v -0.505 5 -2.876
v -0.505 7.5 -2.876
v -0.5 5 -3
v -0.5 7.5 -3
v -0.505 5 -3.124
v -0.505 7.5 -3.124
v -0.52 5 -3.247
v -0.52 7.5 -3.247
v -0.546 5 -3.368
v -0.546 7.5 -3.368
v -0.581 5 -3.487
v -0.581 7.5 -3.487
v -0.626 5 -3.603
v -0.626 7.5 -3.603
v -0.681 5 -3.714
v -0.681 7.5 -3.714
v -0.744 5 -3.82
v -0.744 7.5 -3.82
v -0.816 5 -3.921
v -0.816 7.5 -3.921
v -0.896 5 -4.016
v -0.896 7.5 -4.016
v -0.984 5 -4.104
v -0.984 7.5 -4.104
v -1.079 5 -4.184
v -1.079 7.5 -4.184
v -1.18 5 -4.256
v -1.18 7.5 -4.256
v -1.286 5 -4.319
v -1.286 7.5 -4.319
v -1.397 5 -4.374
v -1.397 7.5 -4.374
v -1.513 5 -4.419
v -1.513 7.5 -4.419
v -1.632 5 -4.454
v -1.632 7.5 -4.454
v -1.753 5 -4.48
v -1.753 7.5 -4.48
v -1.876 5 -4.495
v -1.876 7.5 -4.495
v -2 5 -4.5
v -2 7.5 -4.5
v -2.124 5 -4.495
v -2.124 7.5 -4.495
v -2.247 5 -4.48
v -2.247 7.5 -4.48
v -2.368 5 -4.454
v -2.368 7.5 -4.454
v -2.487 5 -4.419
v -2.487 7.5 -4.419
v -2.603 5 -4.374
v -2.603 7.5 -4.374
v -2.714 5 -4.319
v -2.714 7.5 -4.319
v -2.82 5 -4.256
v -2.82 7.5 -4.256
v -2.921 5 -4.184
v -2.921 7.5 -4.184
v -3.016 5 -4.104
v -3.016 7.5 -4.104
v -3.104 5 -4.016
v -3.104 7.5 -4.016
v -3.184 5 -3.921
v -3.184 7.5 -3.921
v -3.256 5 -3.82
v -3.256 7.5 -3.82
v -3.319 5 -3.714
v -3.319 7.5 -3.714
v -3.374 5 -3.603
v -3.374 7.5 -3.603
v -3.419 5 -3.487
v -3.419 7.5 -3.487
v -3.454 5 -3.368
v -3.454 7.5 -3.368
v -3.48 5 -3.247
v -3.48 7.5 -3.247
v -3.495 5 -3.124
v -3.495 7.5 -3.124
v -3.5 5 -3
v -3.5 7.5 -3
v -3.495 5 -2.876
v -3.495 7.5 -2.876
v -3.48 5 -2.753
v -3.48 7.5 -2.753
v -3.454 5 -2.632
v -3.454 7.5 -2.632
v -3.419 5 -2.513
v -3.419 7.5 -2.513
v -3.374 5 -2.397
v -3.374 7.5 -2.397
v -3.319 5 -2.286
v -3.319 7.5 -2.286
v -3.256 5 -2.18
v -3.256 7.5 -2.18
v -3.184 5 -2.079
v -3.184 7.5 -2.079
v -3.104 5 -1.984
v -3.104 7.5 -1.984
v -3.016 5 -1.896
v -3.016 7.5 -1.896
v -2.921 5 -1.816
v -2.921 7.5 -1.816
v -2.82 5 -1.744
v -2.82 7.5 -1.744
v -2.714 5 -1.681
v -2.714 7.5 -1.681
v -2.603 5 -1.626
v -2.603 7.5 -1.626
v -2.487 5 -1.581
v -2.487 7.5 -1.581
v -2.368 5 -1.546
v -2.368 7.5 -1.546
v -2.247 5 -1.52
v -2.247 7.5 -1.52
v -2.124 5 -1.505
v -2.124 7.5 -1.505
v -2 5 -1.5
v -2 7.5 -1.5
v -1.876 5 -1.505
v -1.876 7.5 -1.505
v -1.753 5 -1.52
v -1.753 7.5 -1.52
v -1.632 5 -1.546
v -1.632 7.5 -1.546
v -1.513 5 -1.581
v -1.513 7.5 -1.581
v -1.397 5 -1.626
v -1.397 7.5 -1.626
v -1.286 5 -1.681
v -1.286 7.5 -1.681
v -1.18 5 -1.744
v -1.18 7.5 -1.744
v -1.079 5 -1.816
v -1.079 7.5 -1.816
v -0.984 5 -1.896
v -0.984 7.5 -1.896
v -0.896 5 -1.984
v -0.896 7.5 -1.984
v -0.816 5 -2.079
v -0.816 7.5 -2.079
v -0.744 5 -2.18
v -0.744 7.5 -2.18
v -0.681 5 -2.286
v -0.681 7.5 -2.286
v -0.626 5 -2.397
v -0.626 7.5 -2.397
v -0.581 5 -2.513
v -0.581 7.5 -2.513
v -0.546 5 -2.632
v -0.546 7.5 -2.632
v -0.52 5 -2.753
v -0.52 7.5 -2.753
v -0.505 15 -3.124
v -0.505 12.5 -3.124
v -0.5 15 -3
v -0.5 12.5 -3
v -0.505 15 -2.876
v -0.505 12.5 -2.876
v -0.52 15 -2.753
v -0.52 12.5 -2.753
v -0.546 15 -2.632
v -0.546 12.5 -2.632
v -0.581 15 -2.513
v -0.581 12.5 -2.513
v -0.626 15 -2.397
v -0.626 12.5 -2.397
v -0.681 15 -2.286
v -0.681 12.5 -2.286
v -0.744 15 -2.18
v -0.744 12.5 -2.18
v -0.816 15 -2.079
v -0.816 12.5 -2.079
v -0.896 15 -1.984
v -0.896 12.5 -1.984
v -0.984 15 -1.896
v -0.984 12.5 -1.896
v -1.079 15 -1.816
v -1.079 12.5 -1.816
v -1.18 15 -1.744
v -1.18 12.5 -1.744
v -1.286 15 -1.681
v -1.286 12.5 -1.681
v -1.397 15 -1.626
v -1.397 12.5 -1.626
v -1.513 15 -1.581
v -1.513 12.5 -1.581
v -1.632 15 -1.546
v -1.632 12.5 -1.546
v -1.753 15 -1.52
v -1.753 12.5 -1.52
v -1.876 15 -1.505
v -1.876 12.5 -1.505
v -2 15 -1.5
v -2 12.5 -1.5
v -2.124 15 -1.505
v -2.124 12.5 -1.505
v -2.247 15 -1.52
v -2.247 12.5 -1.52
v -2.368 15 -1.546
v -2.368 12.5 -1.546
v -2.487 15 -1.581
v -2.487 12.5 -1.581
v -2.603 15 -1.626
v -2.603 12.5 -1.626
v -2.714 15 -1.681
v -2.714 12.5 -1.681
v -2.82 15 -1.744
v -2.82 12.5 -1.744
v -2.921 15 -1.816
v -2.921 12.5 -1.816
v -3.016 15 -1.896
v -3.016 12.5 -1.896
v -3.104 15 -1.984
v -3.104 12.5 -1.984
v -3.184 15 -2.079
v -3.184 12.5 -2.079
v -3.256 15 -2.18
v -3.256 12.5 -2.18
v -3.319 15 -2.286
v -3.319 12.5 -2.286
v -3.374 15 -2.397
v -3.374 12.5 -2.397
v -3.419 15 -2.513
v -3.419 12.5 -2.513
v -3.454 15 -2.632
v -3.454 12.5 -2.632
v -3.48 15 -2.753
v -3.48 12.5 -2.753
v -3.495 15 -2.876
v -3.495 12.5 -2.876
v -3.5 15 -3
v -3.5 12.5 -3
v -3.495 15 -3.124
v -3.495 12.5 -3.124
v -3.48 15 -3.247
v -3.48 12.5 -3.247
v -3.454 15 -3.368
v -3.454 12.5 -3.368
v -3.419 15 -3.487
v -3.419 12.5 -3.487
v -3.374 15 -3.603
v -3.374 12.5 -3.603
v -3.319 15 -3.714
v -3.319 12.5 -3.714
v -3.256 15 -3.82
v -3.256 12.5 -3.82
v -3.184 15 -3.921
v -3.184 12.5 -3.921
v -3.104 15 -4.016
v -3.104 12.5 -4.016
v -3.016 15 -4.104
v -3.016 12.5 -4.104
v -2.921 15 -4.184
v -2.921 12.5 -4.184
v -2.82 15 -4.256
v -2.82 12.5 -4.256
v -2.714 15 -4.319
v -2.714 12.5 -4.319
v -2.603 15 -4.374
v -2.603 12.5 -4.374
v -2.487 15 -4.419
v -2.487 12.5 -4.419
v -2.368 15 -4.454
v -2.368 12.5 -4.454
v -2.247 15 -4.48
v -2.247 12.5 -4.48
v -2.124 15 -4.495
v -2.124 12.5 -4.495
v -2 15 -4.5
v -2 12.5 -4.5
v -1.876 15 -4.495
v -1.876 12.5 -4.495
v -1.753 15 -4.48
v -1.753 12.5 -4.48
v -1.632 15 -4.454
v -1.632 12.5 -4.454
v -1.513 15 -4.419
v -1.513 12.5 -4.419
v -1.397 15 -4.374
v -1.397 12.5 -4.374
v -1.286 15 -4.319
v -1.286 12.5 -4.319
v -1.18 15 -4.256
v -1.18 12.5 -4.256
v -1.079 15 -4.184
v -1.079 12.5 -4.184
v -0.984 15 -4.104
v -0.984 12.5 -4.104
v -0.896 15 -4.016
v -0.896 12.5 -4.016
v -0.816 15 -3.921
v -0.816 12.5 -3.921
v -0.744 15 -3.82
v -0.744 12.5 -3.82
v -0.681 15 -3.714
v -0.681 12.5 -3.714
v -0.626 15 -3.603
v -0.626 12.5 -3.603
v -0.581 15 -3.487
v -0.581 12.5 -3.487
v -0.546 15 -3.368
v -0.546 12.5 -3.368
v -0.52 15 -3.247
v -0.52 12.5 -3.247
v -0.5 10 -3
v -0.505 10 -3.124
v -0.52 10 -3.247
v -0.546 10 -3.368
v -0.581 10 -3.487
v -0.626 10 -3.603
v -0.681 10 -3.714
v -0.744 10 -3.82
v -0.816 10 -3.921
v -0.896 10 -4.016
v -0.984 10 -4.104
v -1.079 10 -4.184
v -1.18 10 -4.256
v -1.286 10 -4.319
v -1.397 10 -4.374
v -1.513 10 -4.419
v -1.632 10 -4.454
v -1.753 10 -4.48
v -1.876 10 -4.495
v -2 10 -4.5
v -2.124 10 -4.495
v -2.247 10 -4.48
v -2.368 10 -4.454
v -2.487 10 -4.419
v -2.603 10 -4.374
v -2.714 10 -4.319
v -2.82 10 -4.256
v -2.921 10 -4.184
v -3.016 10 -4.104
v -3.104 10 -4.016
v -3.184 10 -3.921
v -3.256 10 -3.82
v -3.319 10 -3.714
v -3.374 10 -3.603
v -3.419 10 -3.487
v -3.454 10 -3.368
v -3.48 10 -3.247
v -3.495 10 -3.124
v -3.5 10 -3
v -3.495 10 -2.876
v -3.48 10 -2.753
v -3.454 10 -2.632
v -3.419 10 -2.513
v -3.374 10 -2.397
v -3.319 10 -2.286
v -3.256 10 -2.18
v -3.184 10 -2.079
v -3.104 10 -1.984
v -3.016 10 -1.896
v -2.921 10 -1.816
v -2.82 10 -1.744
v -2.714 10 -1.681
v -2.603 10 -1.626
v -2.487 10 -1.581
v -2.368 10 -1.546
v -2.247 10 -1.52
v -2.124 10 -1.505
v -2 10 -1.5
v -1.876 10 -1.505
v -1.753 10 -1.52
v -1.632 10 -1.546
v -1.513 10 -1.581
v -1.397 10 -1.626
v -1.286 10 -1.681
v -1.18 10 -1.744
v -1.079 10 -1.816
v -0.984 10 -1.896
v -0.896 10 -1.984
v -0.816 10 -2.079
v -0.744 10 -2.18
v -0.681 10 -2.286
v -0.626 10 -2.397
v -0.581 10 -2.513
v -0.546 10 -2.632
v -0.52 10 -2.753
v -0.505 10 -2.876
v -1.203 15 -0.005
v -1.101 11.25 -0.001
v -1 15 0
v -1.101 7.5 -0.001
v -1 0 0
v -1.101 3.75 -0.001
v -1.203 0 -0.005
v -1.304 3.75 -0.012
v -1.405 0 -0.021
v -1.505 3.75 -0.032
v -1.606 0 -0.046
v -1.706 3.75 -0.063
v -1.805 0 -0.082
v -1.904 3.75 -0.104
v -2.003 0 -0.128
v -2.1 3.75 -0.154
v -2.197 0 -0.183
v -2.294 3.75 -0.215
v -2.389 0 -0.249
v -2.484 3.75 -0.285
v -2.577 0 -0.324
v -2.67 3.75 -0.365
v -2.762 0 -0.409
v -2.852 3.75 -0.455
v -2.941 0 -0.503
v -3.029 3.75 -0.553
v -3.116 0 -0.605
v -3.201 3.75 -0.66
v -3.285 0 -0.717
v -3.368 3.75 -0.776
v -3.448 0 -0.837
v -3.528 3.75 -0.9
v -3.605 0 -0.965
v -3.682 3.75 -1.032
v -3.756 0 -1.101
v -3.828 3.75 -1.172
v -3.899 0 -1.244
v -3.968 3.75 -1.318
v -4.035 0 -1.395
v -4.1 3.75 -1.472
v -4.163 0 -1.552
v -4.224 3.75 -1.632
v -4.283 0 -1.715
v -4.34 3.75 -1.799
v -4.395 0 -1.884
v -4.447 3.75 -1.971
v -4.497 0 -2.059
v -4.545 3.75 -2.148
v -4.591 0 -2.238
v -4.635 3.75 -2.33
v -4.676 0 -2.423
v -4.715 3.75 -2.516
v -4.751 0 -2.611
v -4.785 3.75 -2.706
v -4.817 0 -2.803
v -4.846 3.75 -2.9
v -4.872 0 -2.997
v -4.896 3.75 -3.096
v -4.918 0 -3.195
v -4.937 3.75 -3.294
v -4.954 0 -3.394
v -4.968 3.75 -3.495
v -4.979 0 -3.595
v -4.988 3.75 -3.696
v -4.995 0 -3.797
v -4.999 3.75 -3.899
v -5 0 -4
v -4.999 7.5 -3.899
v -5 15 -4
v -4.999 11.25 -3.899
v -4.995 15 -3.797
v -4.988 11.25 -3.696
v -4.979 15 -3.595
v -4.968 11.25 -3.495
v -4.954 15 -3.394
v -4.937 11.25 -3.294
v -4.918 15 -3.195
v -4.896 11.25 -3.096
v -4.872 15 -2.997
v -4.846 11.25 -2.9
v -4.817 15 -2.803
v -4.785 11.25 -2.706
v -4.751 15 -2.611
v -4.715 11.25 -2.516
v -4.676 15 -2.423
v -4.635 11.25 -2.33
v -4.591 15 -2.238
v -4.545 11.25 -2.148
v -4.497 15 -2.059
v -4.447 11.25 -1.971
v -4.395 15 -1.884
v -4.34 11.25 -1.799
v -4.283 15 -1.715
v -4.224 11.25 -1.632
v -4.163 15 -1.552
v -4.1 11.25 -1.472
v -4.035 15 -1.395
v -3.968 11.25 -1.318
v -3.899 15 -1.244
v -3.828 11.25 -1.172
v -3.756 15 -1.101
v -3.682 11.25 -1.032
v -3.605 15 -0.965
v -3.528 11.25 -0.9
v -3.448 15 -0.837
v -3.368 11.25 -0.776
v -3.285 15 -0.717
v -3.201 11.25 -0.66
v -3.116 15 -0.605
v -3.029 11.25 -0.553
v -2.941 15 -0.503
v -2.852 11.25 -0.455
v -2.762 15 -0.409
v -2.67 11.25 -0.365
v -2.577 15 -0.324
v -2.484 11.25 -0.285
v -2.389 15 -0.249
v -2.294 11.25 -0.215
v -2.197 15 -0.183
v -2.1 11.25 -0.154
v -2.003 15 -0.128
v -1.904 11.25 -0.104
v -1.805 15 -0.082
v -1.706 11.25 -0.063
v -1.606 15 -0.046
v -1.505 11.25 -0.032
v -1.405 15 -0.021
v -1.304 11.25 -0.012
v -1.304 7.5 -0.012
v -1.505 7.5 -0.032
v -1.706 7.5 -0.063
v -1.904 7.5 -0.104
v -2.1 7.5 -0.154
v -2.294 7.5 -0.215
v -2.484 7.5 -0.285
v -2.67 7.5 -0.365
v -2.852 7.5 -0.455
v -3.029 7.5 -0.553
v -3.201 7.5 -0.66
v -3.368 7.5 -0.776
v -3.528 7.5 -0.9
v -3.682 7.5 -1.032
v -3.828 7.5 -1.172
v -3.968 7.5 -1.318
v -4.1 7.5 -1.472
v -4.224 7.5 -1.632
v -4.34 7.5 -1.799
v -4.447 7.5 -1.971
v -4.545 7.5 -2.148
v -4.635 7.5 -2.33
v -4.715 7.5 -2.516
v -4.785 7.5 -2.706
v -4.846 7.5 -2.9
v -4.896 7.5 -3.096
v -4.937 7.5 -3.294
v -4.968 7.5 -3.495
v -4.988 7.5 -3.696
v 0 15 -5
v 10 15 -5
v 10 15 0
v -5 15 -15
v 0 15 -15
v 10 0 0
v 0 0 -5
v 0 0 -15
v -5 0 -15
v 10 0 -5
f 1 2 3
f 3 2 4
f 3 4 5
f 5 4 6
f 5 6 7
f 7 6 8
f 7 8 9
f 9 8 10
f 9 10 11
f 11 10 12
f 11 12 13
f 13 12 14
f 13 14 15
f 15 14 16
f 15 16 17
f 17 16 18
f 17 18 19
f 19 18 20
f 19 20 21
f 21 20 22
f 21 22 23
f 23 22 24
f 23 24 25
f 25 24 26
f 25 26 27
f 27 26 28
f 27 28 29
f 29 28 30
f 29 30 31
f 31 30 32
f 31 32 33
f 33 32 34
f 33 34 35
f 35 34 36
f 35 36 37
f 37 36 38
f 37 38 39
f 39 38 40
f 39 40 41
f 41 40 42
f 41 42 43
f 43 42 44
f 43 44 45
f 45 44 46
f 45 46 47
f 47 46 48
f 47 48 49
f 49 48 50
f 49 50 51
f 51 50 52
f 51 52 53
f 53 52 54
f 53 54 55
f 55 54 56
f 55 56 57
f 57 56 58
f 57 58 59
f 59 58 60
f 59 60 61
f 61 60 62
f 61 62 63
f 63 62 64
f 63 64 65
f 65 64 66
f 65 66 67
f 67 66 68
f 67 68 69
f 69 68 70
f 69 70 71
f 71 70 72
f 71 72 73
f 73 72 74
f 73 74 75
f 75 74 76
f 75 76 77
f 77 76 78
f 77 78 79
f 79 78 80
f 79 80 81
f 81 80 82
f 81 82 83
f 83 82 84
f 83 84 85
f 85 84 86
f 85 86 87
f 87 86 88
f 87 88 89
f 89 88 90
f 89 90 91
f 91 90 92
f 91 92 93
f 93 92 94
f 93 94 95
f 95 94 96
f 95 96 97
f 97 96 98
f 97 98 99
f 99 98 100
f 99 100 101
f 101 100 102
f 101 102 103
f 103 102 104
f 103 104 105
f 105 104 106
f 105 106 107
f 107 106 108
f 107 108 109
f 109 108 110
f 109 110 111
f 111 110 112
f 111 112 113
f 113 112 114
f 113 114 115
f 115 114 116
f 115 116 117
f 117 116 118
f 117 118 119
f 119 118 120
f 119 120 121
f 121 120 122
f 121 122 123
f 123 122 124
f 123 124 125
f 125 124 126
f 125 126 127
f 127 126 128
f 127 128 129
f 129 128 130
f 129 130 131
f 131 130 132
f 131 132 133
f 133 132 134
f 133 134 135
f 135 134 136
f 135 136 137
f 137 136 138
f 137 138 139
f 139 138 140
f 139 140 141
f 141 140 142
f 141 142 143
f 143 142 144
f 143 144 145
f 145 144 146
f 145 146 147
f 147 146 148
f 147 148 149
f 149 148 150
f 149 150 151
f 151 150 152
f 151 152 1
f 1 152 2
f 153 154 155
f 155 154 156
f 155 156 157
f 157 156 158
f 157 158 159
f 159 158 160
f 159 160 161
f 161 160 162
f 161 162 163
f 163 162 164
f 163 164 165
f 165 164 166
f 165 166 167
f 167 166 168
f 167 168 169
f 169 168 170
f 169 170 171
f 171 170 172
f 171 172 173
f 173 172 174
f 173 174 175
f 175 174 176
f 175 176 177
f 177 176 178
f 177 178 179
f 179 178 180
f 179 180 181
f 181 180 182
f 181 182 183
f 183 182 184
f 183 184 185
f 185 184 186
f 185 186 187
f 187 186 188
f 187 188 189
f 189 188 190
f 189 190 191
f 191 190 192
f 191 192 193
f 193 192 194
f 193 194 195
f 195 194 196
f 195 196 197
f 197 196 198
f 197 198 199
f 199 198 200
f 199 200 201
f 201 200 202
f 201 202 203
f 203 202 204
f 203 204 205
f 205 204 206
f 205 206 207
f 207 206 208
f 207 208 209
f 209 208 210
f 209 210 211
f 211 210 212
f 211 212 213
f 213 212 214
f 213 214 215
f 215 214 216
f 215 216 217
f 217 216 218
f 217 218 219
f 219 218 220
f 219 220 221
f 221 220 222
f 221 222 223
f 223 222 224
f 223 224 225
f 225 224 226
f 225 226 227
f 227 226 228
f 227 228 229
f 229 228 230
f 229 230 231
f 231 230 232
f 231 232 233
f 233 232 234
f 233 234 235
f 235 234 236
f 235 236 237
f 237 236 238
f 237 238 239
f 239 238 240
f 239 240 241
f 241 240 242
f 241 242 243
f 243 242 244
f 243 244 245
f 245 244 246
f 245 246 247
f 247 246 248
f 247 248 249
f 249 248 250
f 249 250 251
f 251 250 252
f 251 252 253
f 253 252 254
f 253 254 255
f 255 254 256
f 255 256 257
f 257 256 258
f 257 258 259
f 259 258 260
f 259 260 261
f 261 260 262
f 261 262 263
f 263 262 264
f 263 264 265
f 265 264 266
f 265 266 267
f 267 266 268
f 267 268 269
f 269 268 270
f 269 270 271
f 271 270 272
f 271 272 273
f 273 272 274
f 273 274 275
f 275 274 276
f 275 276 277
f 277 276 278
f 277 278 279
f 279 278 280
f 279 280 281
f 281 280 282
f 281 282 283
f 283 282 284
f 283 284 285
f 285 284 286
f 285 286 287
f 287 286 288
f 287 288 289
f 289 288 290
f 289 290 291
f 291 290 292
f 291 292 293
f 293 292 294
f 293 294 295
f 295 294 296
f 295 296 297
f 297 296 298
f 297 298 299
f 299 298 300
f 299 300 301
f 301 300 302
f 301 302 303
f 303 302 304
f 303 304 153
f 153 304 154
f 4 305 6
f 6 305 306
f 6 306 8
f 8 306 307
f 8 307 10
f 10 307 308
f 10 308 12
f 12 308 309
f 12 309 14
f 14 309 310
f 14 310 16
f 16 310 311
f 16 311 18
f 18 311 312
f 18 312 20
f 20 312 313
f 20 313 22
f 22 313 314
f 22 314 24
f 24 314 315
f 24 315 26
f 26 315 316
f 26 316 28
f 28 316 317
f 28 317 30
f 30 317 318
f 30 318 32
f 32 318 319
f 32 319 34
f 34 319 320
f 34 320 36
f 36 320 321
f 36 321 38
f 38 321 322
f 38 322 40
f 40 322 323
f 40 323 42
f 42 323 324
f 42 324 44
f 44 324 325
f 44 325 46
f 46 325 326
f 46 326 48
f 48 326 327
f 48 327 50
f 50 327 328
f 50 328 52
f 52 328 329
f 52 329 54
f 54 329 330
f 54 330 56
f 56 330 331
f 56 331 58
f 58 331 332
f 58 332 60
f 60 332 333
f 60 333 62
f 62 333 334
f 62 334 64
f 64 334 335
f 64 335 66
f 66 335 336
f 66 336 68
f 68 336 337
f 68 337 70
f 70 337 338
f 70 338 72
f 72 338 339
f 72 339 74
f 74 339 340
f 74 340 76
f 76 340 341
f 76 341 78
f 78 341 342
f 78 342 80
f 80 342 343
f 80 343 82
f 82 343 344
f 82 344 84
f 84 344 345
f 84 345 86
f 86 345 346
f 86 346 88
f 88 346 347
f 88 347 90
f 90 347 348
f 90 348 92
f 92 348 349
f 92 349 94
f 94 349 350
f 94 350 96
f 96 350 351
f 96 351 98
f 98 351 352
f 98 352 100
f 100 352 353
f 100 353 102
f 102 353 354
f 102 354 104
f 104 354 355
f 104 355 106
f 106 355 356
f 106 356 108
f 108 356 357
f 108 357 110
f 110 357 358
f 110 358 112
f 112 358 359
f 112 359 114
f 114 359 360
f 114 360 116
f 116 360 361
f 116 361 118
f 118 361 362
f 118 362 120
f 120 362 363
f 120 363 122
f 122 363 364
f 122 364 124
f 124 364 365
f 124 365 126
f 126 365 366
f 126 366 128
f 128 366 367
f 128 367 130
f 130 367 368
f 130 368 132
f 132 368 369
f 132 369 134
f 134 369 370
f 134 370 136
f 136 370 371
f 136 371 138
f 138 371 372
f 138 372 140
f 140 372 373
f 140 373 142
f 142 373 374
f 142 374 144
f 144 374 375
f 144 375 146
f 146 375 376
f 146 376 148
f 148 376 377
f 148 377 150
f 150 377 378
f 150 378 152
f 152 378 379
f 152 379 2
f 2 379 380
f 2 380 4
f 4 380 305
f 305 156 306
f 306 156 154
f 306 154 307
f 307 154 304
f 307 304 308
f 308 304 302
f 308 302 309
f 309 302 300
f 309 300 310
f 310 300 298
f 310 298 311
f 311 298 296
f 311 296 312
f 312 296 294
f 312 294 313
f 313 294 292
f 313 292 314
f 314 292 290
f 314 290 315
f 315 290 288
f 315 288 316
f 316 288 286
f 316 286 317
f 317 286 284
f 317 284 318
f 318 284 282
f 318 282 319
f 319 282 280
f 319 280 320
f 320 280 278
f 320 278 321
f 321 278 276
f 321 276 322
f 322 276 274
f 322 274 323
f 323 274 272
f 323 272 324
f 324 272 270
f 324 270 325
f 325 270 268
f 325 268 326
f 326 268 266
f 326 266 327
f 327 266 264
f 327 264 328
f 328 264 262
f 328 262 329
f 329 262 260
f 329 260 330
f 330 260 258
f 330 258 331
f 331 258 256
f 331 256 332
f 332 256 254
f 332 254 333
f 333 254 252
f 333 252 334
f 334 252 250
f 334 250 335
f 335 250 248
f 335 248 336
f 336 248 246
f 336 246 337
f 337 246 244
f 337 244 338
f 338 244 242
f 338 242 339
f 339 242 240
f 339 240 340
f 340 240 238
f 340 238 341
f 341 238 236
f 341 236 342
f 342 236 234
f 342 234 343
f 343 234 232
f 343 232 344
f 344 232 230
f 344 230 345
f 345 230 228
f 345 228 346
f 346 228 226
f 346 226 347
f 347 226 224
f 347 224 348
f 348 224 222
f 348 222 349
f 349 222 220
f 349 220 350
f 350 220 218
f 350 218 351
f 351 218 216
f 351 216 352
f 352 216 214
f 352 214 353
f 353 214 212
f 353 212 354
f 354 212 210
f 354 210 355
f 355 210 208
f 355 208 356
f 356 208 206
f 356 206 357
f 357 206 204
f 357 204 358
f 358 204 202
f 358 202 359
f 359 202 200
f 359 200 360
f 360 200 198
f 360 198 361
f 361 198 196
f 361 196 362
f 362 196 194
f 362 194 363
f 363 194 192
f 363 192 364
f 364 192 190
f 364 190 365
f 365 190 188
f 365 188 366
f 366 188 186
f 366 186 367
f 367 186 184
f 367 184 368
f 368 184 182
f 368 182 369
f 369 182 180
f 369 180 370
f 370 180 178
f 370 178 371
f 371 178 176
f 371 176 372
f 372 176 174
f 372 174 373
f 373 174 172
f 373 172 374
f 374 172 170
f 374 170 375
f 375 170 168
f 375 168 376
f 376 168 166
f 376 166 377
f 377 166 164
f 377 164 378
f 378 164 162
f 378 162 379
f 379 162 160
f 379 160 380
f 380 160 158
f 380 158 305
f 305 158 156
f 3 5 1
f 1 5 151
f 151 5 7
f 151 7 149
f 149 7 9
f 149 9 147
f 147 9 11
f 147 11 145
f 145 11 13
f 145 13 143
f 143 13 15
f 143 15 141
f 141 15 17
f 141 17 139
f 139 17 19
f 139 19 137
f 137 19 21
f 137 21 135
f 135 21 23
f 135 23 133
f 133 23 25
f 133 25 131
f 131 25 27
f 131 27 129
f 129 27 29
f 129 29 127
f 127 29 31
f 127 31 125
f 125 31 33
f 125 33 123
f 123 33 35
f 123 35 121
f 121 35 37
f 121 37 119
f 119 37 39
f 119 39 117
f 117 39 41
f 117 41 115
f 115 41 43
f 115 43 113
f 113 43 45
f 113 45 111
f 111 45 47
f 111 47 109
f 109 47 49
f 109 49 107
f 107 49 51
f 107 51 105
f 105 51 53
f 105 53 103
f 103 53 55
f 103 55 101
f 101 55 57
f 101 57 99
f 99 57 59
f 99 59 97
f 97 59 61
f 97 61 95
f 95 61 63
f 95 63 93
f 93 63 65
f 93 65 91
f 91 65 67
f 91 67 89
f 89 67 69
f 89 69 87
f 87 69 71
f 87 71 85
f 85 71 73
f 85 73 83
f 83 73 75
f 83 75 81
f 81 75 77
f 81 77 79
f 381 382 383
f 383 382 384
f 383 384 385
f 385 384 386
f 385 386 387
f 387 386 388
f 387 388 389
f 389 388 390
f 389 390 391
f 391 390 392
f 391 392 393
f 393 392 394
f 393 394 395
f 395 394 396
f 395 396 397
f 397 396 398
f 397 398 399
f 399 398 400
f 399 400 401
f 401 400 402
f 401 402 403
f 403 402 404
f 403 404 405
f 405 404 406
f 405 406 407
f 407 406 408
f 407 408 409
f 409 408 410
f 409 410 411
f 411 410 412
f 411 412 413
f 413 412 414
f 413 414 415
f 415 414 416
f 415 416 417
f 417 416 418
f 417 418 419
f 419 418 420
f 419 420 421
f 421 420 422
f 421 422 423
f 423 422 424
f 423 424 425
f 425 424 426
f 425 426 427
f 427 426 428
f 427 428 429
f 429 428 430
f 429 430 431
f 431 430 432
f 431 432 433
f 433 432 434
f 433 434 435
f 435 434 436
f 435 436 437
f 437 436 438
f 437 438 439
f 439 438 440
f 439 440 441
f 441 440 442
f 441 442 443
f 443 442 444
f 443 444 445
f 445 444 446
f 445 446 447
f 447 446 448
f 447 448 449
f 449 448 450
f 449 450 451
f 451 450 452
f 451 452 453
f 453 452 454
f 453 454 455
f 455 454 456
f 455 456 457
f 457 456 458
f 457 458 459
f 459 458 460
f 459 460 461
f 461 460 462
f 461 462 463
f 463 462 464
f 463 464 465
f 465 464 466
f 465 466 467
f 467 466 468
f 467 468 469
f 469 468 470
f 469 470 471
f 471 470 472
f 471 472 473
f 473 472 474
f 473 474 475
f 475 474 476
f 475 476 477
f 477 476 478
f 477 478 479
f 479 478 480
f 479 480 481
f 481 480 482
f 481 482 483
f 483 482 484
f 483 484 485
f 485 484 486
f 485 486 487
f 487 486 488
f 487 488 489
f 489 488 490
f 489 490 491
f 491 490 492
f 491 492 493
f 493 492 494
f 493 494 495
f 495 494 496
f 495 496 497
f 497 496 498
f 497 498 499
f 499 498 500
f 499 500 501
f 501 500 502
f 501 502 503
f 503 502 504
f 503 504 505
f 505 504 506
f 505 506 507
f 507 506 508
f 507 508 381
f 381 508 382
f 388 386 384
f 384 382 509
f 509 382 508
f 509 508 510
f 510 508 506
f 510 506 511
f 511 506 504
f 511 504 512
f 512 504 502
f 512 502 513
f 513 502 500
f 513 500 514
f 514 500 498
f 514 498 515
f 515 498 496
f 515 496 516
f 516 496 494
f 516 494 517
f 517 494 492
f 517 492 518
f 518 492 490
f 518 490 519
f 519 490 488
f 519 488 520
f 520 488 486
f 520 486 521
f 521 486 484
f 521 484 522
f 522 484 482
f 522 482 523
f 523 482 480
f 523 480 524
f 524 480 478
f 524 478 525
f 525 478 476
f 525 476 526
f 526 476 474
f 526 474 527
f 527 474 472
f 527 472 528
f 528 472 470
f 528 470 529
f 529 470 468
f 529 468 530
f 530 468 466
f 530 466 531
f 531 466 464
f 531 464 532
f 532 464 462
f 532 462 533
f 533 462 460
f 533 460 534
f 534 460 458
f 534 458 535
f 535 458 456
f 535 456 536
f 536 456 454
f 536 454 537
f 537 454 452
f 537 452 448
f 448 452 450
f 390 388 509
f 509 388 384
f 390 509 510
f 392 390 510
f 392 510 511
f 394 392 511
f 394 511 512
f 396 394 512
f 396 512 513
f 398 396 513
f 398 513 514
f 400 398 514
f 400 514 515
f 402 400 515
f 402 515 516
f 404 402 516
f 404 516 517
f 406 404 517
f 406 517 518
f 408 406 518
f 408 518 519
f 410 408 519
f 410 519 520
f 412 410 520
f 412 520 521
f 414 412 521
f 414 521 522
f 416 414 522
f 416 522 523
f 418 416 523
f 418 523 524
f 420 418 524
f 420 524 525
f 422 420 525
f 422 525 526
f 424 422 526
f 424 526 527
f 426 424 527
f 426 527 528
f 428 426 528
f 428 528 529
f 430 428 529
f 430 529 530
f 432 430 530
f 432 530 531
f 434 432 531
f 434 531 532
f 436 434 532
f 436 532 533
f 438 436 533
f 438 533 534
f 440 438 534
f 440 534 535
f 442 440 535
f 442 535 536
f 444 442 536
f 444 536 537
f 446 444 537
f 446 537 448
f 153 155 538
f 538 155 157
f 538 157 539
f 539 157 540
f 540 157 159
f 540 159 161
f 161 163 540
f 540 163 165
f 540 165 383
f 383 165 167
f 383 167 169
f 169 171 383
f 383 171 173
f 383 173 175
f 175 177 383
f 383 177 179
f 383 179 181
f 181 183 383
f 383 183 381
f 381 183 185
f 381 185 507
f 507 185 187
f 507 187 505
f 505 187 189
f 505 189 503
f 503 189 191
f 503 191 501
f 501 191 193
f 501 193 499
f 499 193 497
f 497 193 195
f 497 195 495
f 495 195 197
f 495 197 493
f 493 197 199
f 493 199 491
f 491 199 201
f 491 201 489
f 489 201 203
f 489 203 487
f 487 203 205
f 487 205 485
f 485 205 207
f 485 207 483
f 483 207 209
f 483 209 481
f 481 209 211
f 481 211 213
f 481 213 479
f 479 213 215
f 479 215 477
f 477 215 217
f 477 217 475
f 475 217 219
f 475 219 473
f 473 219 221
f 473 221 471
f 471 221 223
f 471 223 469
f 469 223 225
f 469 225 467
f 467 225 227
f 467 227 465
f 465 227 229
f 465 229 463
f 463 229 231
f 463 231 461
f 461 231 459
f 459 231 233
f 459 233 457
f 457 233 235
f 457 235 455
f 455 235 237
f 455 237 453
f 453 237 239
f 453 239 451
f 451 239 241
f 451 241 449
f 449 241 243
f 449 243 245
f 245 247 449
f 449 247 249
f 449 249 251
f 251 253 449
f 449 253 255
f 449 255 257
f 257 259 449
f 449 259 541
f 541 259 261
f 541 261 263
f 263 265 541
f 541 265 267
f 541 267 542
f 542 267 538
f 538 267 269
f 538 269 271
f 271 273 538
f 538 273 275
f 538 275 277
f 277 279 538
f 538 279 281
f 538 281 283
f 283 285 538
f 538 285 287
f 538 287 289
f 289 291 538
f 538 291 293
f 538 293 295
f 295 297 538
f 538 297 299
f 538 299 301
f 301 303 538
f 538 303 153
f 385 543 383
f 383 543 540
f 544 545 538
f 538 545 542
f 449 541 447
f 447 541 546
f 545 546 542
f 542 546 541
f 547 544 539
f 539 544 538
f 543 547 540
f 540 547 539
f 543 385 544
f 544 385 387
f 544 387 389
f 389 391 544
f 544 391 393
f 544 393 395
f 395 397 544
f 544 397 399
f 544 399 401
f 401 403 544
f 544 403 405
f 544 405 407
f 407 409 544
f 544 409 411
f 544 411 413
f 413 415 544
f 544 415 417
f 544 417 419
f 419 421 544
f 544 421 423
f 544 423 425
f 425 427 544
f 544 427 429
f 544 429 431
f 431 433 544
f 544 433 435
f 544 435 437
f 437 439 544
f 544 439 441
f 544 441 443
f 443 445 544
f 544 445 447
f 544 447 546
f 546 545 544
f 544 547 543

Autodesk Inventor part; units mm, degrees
ref_plane "YZ Plane" through (0, 0, 0) normal (1, 0, 0) x (0, 1, 0)
ref_plane "XZ Plane" through (0, 0, 0) normal (0, 1, 0) x (-1, 0, 0)
ref_plane "XY Plane" through (0, 0, 0) normal (0, 0, 1) x (1, 0, 0)
sketch "Sketch1" plane through (0, 0, 0) normal (0, 1, 0) x (-1, 0, 0)
  line L0 (0, 0) -> (5, 0)
  line L1 (5, 0) -> (5, -15)
  line L2 (5, -15) -> (0, -15)
  line L3 (0, -15) -> (0, 0)
  line L4 (0, 0) -> (-10, 0)
  line L5 (-10, 0) -> (-10, -5)
  line L6 (-10, -5) -> (0, -5)
  line L7 (0, -5) -> (0, 0)
  dimension "d0" = 5
  dimension "d1" = 5
  dimension "d2" = 15
  dimension "d3" = 10
extrude "Extrusion1" add sketch "Sketch1" along normal blind 15
sketch "Sketch2" plane through (0, 15, 0) normal (0, 1, 0) x (1, 0, 0)
  circle A0 centre (-2, 3) radius 1.5
  line L0 (-5, 15) -> (-5, 0) projected
  line L1 (-5, 0) -> (10, 0) projected
  point P0 (0, 0)
  dimension "d6" = 3
  dimension "d7" = 3
  dimension "d8" = 3
fillet "Fillet1" radius 4 1 edges at (-5, 7.5, 0)
extrude "Extrusion2" cut sketch "Sketch2" against normal blind 10
properties part number "CornerTest01"
